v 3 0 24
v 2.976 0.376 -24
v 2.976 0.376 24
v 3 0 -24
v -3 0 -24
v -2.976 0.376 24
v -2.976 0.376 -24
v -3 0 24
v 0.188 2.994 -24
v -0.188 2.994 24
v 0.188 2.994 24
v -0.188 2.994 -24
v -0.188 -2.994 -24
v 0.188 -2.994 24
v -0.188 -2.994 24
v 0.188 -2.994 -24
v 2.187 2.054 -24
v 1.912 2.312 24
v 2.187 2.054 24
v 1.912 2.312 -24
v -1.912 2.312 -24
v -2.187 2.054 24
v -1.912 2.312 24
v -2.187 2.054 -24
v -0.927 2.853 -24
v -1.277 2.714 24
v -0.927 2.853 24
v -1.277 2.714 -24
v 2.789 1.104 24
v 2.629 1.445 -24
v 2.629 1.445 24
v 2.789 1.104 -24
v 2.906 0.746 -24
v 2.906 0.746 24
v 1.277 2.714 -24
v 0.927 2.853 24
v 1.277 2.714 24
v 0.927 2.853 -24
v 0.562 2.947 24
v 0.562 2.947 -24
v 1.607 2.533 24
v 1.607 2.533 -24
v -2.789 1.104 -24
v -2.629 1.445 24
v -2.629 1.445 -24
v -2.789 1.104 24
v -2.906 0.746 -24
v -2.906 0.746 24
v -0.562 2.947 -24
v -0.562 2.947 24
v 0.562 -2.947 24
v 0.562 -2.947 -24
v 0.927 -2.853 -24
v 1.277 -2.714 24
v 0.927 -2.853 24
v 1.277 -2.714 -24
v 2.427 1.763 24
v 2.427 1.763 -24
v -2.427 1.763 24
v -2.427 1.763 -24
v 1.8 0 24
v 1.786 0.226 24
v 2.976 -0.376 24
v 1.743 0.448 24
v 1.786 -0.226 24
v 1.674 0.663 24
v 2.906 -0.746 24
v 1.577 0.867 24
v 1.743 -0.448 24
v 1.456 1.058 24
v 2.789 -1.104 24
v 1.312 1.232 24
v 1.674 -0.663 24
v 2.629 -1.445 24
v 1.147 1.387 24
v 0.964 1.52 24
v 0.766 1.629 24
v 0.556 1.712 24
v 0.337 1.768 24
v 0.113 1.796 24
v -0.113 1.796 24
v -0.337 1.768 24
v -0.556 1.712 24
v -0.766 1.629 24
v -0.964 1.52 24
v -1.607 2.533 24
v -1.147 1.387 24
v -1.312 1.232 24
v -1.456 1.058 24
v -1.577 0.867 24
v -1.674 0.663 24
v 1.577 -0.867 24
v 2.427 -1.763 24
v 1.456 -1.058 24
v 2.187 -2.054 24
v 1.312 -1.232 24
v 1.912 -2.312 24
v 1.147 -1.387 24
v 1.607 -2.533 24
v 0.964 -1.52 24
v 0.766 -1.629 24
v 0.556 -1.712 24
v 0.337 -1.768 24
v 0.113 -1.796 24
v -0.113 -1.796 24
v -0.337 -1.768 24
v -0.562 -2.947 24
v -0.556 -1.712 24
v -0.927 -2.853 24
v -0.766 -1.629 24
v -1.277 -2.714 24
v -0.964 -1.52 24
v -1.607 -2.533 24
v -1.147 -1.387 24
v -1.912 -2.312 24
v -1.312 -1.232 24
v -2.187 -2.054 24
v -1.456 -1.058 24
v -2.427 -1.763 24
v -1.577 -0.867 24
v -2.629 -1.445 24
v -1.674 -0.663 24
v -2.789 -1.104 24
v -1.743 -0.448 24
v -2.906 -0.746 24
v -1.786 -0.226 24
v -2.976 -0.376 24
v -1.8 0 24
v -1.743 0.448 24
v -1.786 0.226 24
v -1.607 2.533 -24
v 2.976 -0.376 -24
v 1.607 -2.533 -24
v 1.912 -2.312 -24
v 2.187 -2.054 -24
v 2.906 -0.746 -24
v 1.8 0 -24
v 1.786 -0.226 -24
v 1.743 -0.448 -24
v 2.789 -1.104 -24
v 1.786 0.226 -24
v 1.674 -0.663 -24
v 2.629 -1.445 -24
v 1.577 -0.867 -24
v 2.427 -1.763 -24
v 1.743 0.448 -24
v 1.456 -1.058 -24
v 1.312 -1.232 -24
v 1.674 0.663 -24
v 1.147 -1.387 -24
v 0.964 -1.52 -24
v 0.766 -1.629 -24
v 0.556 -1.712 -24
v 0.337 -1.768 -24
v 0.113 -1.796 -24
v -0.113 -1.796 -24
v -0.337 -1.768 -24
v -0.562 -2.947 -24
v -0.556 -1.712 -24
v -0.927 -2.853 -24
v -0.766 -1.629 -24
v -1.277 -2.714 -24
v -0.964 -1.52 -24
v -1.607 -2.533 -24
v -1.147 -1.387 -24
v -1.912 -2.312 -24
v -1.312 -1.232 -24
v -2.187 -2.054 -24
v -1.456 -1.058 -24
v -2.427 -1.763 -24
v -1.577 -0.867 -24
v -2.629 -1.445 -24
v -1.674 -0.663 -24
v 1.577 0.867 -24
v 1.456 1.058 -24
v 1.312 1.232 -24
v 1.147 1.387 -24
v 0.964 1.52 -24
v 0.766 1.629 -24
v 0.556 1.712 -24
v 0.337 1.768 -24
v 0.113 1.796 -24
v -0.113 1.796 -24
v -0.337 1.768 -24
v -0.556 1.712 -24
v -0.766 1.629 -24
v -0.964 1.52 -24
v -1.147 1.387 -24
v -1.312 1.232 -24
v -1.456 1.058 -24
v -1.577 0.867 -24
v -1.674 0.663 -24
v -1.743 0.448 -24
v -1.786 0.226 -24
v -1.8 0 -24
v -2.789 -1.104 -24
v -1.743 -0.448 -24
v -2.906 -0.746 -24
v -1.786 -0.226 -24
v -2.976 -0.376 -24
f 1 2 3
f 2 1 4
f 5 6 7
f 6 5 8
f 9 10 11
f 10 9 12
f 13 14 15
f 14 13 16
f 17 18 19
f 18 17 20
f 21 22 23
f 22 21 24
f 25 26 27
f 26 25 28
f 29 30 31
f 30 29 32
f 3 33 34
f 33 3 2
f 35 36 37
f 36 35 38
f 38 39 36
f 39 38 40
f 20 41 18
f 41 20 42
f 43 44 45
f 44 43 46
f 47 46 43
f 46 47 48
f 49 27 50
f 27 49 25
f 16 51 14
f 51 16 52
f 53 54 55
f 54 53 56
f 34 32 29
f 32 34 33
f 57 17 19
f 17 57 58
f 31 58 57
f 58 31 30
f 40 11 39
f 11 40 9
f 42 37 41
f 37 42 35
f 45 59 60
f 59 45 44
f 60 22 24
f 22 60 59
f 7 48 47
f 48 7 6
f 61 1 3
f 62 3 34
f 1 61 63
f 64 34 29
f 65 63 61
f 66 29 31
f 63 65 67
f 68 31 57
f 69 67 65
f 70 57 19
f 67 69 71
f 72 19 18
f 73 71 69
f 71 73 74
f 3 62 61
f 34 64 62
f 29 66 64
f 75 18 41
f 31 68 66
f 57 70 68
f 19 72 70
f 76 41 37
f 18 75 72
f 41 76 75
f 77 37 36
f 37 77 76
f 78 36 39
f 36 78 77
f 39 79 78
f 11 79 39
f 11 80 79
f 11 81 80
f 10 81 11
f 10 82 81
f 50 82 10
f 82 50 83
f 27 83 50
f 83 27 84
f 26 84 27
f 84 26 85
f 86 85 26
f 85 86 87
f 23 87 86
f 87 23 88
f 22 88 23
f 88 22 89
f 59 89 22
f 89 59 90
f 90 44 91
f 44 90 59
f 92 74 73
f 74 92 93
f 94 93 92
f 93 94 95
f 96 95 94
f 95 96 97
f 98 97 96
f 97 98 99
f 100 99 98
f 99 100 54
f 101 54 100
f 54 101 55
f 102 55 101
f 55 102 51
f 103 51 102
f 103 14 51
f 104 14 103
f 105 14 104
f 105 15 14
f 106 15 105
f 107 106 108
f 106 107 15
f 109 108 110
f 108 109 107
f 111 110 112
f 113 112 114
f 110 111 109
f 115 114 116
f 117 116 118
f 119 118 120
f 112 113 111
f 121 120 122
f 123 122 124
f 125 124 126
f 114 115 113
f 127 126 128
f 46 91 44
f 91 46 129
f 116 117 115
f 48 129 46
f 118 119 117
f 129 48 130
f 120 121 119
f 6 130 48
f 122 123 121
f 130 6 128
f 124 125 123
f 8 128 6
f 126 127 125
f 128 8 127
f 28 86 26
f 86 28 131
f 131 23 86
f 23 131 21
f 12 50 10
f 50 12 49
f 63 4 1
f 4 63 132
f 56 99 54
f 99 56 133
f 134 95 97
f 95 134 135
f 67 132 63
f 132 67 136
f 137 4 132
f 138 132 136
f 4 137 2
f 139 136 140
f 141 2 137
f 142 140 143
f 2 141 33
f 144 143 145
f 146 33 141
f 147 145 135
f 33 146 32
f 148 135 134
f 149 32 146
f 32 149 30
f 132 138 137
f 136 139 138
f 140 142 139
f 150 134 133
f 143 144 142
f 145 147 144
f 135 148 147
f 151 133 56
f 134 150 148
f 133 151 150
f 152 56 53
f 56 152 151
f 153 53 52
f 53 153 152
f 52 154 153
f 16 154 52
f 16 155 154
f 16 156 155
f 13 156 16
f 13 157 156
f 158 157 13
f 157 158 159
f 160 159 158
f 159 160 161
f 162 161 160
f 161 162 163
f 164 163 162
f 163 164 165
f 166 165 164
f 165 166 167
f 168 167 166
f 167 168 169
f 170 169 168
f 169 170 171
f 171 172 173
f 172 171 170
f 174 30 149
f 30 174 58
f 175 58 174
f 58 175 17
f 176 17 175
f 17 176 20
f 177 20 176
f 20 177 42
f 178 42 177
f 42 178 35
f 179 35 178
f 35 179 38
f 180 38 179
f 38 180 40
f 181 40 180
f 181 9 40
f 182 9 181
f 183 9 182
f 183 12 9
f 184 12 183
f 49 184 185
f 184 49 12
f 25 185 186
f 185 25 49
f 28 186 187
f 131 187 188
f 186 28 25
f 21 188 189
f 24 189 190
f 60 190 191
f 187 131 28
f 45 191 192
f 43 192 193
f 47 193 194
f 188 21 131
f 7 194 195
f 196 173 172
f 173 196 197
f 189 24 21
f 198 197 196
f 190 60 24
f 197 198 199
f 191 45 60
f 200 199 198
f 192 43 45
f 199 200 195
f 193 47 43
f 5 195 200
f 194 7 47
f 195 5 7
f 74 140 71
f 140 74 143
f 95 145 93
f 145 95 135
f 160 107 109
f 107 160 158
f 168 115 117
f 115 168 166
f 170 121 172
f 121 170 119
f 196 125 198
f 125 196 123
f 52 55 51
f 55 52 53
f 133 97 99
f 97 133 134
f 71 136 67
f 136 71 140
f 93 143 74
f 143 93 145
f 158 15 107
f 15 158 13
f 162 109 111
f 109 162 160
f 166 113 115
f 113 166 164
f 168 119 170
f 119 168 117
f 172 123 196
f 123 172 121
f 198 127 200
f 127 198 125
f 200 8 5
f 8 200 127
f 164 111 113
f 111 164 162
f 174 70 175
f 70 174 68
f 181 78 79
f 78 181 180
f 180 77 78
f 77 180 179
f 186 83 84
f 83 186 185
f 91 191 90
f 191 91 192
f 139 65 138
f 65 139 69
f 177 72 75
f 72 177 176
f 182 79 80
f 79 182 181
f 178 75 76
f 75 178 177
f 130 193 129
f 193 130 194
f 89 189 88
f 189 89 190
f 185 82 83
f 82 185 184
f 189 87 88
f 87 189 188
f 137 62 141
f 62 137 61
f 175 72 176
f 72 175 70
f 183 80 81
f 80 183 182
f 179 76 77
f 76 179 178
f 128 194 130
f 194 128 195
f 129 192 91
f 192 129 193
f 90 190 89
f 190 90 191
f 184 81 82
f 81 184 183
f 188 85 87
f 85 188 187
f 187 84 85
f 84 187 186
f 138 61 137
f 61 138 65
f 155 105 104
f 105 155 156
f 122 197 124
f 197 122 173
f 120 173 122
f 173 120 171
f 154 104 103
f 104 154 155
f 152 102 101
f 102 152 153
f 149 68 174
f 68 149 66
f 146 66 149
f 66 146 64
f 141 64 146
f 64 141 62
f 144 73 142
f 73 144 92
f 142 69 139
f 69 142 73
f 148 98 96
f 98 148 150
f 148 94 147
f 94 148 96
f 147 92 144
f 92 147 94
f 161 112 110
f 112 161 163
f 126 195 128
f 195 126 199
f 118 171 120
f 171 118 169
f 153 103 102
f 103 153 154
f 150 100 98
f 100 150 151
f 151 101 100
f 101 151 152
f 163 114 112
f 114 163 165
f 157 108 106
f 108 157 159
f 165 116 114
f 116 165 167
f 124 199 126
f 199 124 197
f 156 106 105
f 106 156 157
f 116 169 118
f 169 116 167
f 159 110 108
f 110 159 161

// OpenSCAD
$fn = 50;


difference() {
	union() {
		translate(v = [0, 0, -24.0000000000]) {
			cylinder(h = 48, r = 3.0000000000);
		}
	}
	union() {
		translate(v = [0, 0, -100.0000000000]) {
			cylinder(h = 200, r = 1.8000000000);
		}
	}
}
